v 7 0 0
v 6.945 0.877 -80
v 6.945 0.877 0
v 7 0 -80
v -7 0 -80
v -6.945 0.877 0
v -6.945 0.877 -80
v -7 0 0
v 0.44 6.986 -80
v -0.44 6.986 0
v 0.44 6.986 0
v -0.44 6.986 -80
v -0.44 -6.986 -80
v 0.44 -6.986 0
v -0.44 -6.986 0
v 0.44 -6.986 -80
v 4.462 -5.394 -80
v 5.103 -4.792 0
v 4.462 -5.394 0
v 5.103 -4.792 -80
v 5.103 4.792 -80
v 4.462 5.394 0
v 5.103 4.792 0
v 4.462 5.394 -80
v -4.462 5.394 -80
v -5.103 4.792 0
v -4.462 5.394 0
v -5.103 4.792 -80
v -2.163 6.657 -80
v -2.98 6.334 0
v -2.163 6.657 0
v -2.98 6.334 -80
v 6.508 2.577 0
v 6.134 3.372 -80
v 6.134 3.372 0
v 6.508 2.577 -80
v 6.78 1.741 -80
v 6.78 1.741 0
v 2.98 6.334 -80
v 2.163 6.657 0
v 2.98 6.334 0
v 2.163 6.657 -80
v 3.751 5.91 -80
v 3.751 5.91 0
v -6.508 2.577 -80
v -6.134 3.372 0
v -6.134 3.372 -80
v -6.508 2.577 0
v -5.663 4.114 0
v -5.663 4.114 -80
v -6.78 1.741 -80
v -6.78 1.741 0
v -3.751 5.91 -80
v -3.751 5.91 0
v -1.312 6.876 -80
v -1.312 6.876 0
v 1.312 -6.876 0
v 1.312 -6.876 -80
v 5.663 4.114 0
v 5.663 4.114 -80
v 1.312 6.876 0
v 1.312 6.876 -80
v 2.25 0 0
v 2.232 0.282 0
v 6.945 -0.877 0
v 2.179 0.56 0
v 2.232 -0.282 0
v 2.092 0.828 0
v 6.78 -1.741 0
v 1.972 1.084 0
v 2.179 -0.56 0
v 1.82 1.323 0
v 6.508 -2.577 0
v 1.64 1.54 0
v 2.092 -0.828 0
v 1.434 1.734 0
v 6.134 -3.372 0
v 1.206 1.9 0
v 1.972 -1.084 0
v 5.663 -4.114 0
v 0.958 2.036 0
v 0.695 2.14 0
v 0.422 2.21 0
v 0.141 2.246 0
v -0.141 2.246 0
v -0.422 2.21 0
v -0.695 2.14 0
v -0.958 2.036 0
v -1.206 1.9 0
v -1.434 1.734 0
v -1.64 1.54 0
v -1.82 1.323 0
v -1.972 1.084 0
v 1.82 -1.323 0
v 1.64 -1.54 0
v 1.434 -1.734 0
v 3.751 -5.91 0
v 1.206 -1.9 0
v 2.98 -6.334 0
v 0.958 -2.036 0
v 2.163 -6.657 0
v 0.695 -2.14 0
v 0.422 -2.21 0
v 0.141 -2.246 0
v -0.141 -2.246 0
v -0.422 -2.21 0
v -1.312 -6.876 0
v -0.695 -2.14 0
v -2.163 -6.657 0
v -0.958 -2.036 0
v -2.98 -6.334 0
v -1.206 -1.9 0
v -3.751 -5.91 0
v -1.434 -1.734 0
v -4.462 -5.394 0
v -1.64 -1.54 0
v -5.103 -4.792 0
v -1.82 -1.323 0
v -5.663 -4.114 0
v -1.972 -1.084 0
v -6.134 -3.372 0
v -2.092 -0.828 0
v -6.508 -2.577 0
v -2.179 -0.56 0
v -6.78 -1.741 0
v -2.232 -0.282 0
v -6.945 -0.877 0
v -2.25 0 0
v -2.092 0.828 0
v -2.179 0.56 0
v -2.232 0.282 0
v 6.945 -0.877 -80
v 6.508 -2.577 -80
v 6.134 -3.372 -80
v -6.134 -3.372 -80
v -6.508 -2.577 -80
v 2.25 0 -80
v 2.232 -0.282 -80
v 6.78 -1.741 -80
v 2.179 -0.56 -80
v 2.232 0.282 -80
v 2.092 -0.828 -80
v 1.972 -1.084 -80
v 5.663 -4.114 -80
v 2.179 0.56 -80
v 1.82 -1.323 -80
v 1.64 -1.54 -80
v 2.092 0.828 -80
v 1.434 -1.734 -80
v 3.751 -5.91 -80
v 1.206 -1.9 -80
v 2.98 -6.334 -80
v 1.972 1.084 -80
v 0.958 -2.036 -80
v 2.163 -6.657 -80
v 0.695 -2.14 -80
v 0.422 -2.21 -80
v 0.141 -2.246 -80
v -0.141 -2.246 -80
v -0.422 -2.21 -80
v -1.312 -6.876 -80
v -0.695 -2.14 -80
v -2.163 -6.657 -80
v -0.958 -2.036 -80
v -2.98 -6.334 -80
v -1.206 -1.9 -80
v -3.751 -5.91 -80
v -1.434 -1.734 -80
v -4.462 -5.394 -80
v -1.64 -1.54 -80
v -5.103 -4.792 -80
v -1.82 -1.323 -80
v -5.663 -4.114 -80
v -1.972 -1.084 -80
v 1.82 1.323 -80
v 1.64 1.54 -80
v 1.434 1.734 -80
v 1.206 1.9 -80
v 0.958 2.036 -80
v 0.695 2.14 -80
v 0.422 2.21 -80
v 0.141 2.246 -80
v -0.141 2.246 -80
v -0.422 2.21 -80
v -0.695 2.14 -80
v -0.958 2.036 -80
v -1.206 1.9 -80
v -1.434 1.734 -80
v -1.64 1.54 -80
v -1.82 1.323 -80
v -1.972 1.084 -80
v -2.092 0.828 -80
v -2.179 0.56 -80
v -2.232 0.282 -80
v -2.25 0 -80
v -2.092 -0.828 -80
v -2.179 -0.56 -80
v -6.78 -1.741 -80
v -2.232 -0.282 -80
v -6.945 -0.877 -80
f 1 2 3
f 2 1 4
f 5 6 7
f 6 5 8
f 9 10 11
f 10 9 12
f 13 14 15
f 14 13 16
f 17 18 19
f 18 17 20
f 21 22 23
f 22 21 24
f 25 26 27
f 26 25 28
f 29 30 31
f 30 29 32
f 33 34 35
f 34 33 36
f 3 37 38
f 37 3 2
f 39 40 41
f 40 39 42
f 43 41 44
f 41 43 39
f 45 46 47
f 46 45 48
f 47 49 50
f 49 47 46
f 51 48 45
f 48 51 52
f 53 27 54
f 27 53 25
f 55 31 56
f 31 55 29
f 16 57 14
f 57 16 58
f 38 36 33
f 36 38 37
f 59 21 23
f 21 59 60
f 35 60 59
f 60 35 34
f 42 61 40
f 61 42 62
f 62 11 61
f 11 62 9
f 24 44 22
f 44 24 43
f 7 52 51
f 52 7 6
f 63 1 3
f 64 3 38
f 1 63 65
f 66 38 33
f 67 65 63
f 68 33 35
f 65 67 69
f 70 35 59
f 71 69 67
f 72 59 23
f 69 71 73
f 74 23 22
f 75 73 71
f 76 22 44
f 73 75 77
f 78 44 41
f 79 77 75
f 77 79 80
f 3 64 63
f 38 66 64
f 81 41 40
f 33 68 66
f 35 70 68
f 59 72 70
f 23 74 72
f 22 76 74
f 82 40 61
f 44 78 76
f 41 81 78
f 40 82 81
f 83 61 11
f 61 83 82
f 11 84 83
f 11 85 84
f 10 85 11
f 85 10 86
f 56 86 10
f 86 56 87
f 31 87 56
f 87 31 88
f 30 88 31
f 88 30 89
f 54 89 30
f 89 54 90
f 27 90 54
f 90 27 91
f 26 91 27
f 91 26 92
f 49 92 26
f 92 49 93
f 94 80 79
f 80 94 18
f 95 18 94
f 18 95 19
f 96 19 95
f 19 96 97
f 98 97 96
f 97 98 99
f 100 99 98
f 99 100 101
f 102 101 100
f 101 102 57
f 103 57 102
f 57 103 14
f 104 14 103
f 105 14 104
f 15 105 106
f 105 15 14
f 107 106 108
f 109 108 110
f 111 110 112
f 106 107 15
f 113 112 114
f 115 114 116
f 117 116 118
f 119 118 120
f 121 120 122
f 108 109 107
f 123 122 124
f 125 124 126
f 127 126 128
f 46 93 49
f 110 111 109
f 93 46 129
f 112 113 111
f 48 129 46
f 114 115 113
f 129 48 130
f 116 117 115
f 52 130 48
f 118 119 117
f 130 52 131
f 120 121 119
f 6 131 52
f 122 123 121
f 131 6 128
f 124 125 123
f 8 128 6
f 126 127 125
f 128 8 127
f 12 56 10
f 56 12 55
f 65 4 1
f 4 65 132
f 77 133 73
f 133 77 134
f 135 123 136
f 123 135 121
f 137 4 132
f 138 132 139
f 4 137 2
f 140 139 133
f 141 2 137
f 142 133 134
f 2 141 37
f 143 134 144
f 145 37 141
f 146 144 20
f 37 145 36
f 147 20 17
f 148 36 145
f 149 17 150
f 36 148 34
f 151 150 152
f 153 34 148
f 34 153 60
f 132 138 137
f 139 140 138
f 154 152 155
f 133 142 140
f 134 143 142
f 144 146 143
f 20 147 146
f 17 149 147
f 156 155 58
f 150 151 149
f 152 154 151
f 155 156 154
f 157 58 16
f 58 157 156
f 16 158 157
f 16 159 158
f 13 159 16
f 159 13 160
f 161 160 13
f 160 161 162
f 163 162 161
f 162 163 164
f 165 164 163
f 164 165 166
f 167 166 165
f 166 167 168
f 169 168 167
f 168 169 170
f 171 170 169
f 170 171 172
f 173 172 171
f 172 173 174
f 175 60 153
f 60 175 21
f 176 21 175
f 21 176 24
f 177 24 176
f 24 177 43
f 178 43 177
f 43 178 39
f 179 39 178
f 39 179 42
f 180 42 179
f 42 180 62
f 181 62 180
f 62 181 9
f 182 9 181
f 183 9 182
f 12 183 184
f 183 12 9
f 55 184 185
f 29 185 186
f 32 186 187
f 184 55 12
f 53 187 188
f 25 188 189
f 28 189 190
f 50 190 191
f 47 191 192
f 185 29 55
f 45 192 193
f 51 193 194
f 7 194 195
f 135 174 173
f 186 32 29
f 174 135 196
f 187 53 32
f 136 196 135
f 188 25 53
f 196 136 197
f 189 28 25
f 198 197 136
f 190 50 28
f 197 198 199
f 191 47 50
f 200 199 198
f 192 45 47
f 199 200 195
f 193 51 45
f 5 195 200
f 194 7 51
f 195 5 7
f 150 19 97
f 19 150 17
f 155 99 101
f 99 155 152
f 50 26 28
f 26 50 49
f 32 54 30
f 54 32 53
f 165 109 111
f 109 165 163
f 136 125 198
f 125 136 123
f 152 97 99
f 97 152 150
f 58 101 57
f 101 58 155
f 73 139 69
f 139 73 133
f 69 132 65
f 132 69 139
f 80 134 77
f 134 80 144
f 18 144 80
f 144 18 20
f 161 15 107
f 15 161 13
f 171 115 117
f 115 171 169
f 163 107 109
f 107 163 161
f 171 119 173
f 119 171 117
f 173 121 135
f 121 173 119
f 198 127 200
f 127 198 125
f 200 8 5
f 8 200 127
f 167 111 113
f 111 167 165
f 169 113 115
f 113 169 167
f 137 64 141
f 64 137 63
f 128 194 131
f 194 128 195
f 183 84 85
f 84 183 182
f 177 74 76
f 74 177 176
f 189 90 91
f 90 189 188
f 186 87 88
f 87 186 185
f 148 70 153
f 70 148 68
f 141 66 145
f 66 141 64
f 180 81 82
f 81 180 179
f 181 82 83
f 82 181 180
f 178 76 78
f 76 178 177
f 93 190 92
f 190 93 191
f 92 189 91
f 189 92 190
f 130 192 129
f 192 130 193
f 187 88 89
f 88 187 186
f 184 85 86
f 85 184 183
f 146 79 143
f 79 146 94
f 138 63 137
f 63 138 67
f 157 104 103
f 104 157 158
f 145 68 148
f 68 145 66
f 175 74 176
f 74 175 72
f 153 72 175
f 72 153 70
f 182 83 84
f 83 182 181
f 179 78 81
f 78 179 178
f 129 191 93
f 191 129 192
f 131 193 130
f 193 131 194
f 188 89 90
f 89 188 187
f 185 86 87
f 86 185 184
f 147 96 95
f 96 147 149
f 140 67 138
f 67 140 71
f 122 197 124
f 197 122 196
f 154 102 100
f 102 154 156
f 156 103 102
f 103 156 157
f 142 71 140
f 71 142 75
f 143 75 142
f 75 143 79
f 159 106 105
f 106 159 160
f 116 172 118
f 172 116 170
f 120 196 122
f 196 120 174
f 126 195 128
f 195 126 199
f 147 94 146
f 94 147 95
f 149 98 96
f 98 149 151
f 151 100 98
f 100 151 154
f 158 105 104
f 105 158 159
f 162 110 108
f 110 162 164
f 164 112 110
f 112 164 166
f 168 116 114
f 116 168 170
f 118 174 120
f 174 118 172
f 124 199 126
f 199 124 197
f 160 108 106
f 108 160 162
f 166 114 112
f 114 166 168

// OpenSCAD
$fn = 50;


difference() {
	union() {
		translate(v = [0, 0, -80.0000000000]) {
			cylinder(h = 80, r = 7.0000000000);
		}
	}
	union() {
		#translate(v = [0, 0, -80]) {
			cylinder(h = 80, r = 2.2500000000);
		}
	}
}
